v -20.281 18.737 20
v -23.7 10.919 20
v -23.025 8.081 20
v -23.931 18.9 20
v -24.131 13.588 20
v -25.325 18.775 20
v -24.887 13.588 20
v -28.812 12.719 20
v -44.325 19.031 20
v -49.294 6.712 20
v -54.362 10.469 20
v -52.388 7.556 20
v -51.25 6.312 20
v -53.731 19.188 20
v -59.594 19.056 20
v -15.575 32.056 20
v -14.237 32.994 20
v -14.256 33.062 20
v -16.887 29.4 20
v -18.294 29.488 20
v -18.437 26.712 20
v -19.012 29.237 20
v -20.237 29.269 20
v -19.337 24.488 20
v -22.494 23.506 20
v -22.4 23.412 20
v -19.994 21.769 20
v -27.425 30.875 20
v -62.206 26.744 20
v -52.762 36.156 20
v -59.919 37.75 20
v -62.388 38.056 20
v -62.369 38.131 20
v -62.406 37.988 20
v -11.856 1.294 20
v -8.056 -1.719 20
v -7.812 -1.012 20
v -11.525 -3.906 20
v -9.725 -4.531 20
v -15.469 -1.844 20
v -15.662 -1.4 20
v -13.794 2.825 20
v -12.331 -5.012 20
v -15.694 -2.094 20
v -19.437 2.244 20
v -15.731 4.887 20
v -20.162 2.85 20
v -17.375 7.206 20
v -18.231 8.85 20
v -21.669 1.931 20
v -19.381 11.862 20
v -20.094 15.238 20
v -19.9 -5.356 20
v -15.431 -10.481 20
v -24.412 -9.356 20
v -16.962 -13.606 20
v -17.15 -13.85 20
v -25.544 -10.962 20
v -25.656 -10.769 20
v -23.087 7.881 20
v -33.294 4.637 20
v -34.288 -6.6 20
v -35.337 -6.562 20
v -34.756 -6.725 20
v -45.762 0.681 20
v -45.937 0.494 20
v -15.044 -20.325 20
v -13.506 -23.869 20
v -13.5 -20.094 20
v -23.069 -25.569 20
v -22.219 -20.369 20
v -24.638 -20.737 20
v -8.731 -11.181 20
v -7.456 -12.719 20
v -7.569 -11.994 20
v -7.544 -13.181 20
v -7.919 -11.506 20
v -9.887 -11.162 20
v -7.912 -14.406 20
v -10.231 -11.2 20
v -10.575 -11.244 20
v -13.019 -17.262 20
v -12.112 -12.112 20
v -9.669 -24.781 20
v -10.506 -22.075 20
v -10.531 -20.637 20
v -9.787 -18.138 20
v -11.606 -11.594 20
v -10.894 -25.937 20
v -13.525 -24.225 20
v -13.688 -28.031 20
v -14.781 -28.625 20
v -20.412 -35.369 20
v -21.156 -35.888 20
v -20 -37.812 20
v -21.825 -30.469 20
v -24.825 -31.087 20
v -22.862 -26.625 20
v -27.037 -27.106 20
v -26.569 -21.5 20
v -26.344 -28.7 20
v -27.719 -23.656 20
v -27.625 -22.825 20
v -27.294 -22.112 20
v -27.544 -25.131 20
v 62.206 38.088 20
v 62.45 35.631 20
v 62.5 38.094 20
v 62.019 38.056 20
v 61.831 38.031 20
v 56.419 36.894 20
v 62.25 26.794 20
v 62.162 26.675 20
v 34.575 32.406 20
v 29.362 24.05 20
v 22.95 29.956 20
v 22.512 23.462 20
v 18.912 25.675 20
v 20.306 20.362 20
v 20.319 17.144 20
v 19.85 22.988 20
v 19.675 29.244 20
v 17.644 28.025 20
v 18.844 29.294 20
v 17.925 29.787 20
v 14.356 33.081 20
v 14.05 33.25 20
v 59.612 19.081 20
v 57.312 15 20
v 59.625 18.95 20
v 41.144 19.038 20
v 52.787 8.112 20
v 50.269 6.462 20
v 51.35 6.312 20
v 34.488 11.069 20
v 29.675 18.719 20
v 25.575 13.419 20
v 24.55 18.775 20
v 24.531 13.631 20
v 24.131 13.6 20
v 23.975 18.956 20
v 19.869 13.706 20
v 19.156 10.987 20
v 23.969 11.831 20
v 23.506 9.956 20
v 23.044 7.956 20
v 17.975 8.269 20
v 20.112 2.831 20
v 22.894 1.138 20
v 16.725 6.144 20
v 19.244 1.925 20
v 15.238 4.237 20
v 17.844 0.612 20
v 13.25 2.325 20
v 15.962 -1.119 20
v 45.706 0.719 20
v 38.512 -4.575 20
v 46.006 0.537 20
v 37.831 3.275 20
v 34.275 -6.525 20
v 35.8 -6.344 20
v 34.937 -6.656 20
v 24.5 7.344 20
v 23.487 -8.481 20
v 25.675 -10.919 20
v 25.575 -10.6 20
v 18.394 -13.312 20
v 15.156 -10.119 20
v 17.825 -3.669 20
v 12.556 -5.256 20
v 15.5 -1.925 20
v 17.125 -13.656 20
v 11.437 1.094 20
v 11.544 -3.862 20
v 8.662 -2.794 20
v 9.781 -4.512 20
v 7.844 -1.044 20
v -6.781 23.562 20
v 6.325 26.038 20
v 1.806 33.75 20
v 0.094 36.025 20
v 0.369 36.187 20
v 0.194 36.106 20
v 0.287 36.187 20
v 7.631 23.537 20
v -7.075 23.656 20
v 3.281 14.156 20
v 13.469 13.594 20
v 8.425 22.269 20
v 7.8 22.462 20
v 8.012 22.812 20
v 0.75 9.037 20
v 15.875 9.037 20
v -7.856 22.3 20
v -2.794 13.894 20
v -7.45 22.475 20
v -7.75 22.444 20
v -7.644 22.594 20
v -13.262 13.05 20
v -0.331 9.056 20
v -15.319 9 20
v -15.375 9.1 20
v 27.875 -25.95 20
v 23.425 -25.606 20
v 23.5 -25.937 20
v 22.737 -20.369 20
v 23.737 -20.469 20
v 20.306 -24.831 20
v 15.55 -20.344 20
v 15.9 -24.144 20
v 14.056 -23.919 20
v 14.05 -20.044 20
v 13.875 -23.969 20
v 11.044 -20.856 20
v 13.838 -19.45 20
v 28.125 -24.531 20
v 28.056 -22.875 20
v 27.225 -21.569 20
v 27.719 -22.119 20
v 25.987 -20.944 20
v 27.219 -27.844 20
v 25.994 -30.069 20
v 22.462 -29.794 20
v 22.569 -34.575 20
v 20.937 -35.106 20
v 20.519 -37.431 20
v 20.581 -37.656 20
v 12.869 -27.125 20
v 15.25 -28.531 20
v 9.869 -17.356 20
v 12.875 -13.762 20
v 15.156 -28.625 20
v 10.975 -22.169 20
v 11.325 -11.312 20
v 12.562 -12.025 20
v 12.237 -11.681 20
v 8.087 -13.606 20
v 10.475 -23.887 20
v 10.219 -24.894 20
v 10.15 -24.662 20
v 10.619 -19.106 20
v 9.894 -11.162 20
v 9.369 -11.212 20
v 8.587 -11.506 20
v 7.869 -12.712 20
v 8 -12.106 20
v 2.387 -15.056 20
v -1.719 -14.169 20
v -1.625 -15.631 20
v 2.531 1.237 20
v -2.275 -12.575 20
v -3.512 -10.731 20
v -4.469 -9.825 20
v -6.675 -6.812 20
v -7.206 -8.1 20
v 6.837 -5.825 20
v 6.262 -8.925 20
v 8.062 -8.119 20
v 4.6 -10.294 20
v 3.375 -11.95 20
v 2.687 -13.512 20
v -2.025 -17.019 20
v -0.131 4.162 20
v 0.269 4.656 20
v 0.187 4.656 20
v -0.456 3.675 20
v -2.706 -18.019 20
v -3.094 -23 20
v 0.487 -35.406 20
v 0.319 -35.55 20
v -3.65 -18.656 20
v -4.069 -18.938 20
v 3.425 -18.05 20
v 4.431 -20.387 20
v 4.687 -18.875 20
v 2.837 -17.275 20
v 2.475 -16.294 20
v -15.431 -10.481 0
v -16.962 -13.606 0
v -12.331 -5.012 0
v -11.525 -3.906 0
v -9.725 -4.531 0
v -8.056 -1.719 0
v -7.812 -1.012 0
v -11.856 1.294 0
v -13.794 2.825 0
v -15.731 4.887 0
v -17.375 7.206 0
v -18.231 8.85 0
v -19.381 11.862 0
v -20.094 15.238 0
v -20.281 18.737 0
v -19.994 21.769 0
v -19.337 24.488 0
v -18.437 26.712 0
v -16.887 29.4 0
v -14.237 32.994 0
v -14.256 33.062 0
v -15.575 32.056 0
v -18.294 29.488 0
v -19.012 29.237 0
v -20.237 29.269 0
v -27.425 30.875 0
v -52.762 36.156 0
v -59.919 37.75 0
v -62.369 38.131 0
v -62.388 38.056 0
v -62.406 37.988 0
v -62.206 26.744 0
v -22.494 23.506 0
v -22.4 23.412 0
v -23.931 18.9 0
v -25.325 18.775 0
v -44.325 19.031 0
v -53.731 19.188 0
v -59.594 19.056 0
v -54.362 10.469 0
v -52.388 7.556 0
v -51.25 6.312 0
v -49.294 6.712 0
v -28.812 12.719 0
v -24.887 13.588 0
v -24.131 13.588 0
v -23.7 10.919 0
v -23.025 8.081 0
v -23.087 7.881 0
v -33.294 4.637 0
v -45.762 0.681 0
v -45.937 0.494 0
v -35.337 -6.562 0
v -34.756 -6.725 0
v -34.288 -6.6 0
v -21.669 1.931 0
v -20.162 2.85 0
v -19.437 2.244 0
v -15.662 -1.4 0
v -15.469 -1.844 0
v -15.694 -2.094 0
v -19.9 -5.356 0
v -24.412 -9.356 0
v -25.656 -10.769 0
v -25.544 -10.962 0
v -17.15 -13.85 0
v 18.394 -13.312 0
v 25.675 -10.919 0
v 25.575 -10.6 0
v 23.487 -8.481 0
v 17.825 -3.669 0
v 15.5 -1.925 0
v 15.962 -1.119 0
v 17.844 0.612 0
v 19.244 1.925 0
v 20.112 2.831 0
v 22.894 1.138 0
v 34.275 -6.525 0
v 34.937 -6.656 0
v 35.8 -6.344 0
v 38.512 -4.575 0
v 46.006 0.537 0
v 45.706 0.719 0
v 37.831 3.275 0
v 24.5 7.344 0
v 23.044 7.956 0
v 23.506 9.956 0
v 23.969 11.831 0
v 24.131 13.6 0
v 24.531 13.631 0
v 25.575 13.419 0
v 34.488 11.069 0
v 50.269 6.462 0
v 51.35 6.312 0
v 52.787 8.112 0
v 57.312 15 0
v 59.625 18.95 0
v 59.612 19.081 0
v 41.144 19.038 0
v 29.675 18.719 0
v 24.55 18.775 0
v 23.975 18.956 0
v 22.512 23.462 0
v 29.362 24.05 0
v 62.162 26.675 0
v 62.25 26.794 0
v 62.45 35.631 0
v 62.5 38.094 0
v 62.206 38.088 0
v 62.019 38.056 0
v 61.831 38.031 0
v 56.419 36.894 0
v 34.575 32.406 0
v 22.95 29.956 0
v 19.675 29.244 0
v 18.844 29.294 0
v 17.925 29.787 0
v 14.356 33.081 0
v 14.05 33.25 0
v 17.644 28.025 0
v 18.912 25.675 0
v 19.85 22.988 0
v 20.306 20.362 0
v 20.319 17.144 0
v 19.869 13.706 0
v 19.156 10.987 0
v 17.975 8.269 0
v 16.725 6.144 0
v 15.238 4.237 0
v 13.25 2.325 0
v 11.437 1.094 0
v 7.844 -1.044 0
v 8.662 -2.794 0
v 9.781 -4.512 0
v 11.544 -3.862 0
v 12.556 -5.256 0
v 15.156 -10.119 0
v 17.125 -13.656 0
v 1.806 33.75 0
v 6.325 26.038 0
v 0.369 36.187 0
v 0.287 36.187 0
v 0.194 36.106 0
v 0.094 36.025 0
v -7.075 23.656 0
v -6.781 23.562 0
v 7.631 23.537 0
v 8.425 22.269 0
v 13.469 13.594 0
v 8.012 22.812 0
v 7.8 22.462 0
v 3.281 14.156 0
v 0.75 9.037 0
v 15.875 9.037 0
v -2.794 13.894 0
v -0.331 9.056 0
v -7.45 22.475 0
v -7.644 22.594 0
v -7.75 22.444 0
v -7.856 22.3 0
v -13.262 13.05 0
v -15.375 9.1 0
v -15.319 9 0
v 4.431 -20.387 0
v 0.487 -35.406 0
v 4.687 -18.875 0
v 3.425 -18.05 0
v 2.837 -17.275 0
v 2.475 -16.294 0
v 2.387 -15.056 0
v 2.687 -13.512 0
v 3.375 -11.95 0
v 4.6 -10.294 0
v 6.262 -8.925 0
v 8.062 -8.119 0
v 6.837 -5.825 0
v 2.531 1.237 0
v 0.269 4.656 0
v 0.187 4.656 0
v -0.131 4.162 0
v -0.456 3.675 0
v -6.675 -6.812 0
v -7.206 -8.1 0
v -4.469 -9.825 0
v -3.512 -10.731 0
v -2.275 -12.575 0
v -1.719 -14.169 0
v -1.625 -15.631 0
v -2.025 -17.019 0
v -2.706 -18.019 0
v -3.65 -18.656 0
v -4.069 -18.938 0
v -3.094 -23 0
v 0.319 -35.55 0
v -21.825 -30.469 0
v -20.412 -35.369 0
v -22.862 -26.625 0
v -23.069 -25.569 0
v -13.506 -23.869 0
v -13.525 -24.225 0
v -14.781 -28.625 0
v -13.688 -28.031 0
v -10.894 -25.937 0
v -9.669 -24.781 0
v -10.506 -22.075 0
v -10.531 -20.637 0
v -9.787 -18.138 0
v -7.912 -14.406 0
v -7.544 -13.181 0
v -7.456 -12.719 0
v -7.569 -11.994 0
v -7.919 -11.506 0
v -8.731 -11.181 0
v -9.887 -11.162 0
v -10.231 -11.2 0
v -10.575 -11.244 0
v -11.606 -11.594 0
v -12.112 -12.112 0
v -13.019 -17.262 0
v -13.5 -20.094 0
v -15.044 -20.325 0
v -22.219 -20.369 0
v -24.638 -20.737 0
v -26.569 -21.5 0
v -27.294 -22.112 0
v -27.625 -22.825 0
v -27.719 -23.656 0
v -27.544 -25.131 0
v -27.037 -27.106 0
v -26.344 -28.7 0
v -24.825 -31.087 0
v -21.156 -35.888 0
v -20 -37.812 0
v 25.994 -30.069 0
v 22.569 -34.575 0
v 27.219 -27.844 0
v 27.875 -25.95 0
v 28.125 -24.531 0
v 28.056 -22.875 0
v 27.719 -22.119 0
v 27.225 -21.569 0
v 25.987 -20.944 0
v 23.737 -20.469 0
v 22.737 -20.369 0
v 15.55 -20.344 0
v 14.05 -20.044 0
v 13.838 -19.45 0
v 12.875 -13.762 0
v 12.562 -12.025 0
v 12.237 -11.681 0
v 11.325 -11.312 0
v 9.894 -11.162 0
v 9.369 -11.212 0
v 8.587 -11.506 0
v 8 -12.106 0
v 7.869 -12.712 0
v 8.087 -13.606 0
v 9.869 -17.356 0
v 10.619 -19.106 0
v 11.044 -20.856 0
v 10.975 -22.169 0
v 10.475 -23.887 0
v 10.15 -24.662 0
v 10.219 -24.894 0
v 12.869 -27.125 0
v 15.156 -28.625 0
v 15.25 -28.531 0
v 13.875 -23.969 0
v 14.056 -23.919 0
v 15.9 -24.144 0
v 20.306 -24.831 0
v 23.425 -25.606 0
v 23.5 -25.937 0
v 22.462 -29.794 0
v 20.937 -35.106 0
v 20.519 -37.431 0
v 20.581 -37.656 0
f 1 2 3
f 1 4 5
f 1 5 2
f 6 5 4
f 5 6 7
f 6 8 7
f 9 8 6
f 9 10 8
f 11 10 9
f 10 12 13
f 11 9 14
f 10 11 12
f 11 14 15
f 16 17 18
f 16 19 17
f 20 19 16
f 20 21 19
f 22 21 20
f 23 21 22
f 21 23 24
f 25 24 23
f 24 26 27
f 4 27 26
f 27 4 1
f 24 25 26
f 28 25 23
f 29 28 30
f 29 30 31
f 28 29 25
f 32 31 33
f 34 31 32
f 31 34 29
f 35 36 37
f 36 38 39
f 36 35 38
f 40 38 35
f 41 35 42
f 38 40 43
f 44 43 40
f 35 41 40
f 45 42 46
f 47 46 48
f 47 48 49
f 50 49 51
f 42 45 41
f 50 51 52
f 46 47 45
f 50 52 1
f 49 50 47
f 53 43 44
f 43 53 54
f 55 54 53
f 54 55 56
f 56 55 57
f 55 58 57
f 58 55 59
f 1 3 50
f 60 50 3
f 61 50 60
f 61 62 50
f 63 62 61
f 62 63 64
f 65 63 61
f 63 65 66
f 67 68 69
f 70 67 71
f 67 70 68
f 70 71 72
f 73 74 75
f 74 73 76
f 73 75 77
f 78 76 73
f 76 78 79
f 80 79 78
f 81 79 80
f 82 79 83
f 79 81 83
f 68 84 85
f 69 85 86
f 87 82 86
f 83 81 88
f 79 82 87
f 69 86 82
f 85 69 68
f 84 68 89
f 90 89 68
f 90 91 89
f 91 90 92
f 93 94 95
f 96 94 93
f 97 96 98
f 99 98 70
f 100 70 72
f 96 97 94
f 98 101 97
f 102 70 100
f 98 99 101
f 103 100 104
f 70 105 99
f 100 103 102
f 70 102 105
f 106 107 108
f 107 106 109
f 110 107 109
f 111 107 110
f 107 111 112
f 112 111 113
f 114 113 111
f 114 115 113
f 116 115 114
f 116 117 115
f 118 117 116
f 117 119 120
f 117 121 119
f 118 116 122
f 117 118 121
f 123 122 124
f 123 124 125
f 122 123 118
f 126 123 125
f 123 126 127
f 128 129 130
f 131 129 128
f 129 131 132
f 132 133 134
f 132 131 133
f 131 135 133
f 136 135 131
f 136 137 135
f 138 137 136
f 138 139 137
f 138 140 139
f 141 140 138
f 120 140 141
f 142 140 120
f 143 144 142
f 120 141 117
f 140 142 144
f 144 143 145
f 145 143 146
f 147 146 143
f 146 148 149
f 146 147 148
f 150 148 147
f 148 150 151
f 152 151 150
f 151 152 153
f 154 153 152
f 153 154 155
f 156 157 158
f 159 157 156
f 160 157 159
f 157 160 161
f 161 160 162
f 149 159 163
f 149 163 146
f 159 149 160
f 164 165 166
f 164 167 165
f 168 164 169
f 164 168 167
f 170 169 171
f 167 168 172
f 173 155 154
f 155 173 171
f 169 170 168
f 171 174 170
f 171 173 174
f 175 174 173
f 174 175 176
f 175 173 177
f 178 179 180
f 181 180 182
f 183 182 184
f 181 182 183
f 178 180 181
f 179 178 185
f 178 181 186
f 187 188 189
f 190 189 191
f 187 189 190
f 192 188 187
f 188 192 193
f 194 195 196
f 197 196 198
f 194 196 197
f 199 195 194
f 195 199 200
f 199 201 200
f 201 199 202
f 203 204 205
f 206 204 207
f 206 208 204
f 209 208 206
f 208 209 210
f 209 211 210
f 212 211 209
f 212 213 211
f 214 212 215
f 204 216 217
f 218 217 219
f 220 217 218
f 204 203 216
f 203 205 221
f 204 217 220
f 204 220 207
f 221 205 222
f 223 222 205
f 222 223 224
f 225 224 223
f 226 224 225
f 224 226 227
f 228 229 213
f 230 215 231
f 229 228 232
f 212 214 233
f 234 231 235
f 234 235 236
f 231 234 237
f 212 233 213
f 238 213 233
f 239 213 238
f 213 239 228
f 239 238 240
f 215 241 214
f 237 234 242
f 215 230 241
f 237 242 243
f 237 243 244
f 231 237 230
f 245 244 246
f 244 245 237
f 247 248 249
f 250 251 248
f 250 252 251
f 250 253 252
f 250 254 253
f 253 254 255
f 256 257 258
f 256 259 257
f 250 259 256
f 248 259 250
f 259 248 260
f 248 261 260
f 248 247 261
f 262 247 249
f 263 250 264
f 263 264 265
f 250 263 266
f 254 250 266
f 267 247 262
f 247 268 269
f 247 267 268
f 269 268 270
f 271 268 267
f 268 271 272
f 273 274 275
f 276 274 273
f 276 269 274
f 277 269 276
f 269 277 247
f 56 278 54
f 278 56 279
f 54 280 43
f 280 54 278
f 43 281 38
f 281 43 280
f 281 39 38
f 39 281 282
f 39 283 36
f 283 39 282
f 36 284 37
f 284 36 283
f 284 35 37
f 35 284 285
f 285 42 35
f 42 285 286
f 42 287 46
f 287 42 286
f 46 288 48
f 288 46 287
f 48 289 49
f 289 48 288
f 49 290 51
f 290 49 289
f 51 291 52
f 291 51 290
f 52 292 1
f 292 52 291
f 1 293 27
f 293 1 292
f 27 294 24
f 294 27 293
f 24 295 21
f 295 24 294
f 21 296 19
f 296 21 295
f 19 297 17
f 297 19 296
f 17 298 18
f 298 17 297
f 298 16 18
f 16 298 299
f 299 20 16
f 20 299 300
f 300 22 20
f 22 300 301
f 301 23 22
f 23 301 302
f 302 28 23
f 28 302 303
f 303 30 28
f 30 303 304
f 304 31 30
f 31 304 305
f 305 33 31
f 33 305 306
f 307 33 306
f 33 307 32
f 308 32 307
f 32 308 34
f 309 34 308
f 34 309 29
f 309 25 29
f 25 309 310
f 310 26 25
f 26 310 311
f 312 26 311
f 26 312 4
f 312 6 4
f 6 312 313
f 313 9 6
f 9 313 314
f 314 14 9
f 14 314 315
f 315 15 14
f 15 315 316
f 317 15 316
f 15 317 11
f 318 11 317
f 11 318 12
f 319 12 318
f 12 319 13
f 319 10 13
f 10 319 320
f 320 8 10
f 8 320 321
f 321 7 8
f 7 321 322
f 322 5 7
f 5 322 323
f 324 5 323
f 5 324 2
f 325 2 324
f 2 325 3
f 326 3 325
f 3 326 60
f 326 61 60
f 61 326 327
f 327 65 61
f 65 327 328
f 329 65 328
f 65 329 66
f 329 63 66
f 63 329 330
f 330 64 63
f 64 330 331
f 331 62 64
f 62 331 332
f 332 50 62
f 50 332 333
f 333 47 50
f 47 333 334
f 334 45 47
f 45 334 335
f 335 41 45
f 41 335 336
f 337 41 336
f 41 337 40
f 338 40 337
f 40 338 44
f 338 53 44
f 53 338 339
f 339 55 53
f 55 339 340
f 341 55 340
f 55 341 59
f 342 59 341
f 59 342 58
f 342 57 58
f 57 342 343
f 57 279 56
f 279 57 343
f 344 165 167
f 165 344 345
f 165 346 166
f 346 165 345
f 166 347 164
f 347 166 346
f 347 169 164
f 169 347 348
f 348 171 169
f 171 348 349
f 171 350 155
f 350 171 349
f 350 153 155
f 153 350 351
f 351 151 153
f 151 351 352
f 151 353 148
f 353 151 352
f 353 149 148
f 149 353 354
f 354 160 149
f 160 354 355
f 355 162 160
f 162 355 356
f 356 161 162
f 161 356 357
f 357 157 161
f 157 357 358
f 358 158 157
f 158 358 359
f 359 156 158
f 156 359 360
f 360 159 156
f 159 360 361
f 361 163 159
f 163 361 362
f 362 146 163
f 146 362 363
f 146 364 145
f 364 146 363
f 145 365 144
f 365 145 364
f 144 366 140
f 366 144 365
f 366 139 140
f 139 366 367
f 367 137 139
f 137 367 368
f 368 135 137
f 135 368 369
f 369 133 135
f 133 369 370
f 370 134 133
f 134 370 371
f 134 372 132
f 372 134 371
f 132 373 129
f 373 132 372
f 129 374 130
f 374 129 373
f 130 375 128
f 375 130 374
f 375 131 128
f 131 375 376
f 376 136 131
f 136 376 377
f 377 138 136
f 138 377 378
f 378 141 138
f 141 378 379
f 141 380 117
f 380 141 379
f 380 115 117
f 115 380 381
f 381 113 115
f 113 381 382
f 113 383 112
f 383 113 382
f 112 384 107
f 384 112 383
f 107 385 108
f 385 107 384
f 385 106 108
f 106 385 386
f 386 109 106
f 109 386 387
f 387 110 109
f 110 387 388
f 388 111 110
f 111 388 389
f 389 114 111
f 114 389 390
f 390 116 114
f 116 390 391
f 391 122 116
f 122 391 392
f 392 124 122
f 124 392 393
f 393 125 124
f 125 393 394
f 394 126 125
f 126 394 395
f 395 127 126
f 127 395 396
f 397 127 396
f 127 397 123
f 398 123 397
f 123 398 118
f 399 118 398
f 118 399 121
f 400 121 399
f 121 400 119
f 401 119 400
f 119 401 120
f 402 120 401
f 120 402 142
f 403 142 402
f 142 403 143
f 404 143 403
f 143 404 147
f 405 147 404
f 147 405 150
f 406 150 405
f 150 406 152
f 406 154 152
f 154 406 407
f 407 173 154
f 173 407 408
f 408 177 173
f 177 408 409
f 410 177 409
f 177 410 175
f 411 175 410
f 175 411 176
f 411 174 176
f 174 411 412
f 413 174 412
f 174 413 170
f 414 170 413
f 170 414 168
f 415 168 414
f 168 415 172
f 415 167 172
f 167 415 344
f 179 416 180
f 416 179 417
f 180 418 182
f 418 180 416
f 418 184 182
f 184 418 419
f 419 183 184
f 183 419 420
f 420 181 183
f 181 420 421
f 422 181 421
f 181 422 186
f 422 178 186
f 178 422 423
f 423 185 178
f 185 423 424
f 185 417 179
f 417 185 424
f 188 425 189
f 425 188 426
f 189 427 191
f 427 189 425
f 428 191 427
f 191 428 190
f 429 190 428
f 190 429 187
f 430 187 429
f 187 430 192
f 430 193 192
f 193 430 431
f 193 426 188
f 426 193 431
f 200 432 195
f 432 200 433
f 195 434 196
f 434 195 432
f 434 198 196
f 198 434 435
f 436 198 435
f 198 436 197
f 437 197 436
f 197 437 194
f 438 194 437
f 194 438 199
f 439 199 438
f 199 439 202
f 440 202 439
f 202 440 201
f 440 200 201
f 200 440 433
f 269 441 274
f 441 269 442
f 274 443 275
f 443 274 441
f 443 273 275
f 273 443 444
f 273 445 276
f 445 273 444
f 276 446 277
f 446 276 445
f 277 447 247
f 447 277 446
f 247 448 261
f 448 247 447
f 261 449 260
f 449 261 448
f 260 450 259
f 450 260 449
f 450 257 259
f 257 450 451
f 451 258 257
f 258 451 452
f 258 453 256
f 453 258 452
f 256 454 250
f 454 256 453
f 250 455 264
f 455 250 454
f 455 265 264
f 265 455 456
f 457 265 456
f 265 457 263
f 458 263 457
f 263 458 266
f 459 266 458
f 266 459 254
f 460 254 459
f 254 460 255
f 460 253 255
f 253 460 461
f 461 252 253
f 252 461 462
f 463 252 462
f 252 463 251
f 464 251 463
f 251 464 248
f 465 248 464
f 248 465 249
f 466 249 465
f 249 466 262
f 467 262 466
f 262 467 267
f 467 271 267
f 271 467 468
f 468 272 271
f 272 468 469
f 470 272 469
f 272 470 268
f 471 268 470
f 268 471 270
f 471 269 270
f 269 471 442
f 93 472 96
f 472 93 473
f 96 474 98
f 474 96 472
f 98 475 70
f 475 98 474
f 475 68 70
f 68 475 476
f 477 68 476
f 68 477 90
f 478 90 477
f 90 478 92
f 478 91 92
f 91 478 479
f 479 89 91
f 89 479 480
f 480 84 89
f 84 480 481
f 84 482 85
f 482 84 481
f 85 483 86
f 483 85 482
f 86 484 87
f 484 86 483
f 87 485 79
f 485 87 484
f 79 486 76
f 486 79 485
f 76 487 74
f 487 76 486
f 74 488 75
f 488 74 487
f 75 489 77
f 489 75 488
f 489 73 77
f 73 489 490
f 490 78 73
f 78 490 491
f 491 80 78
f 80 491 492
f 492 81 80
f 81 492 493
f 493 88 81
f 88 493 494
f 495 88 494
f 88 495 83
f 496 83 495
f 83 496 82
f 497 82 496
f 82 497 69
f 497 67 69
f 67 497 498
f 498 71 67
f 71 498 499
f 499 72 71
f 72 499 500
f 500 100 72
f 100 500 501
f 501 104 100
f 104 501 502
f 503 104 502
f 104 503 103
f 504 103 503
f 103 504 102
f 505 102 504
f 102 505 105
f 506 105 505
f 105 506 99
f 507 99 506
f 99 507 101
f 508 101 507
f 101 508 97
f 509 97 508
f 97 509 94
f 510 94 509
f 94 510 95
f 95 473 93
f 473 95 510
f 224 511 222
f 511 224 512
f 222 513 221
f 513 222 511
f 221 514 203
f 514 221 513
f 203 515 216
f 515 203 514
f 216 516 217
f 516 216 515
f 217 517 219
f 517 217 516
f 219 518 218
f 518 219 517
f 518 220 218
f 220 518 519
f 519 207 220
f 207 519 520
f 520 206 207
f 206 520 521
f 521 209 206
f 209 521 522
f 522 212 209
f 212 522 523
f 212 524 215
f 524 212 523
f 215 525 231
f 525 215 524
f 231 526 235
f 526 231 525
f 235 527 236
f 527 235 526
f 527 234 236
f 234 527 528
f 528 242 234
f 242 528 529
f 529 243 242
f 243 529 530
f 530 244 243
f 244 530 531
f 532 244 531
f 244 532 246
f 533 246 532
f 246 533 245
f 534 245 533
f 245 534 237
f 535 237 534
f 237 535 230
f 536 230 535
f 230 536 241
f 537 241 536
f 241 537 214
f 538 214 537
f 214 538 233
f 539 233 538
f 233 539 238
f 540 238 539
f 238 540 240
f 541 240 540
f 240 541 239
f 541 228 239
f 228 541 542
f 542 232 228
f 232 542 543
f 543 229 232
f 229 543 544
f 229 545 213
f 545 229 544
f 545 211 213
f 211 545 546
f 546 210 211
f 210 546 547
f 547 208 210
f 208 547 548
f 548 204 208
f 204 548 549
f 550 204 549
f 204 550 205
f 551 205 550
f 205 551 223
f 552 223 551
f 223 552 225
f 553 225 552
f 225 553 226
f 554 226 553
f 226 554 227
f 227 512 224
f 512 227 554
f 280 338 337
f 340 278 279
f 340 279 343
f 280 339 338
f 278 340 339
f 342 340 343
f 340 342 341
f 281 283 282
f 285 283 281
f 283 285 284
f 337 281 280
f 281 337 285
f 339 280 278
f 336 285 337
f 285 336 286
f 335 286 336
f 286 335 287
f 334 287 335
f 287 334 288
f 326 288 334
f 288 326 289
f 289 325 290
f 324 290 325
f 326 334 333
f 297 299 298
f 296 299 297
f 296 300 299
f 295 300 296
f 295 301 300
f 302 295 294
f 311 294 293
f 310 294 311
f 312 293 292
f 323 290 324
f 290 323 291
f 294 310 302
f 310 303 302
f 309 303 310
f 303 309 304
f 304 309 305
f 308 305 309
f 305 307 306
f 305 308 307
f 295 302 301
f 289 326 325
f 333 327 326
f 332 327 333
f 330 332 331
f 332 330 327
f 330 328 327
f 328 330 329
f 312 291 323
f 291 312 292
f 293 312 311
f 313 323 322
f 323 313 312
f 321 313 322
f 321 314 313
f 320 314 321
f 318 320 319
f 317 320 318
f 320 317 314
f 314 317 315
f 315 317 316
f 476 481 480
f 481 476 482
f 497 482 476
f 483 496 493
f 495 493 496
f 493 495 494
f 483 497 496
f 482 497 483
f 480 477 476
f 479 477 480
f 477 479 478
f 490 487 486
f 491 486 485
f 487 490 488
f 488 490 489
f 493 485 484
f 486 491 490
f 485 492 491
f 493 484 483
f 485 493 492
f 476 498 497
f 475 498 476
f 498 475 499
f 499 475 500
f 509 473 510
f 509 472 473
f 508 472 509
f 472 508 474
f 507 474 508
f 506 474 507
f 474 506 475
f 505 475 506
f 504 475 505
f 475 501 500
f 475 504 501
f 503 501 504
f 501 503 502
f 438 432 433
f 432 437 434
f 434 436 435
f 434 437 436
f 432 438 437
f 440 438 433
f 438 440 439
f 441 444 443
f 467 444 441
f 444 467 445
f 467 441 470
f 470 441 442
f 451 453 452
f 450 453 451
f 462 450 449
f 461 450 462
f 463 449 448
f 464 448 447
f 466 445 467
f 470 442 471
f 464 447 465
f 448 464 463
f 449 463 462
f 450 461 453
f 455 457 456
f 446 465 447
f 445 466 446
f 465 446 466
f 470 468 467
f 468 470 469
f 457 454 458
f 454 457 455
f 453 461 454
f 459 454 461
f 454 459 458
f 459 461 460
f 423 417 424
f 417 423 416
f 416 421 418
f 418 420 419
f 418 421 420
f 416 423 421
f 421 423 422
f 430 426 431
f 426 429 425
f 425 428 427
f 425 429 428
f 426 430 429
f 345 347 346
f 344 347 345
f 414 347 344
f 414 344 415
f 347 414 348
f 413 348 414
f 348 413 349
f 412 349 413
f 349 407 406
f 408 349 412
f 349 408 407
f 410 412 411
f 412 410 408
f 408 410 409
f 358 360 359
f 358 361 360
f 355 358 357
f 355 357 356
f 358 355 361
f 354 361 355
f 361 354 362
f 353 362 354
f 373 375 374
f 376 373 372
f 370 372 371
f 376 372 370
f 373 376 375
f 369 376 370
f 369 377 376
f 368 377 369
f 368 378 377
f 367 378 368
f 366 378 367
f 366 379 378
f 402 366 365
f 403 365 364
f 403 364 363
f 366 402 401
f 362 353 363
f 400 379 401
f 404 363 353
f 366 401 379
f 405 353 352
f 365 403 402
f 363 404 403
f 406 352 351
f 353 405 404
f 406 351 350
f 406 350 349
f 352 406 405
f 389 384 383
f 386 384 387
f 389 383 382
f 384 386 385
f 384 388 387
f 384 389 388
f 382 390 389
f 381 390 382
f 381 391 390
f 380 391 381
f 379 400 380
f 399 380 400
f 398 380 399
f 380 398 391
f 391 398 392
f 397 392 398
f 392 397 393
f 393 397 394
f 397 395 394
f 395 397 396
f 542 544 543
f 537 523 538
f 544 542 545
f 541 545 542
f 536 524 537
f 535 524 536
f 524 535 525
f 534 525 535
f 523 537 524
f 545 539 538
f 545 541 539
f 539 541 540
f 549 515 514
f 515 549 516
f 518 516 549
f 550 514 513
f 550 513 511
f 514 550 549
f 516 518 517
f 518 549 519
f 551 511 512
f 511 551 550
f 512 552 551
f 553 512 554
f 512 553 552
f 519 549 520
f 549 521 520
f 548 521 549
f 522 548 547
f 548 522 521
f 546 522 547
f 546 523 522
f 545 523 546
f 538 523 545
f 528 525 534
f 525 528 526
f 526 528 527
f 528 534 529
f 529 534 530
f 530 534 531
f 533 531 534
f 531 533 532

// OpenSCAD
module 90cd2d3fccbd112c779d59049372b4ca_1()
{
 /* Generated by trace2scad version 20150415
    http://aggregate.org/MAKE/TRACE2SCAD/
    Optimized model has 279/3844 original points
 */
 color([0.48, 0.48, 0.48])
 assign(minx=0) /* polygon minx=15 */
 assign(miny=0) /* polygon miny=75 */
 assign(maxx=20000) /* polygon maxx=20000 */
 assign(maxy=12250) /* polygon maxy=12226 */
 assign(dx=maxx-minx)
 assign(dy=maxy-miny)
 assign(maxd=((dx>dy)?dx:dy))
 scale([1/maxd, 1/maxd, 1])
 translate([-minx-dx/2, -miny-dy/2, 0])
 linear_extrude(height=1, convexity=279)
 union() {
  union() {
   polygon([[18,12214],[15,12203],[47,10404],[6401,9886],[6416,9871],[6171,9149],[5948,9129],[2908,9170],[1403,9195],[465,9174],[1302,7800],[1618,7334],[1800,7135],[2113,7199],[5390,8160],[6018,8299],[6139,8299],[6208,7872],[6316,7418],[6306,7386],[4673,6867],[2678,6234],[2650,6204],[4346,5075],[4439,5049],[4514,5069],[6533,6434],[6774,6581],[6890,6484],[7494,5901],[7525,5830],[7489,5790],[6816,5268],[6094,4628],[5895,4402],[5913,4371],[7256,3909],[7286,3948],[7531,4448],[8027,5323],[8156,5500],[8444,5400],[8711,5850],[8750,5963],[8103,6332],[7793,6577],[7483,6907],[7220,7278],[7083,7541],[6899,8023],[6785,8563],[6755,9123],[6801,9608],[6906,10043],[7050,10399],[7298,10829],[7722,11404],[7719,11415],[7508,11254],[7073,10843],[6958,10803],[6762,10808],[5612,11065],[1558,11910],[413,12165],[21,12226]], convexity=24);
   polygon([[19923,12214],[19893,12210],[19027,12028],[15532,11310],[13672,10918],[13148,10804],[13015,10812],[12868,10891],[12297,11418],[12248,11445],[12823,10609],[13026,10233],[13176,9803],[13249,9383],[13251,8868],[13179,8318],[13065,7883],[12876,7448],[12676,7108],[12438,6803],[12120,6497],[11830,6300],[11255,5958],[11386,5678],[11565,5403],[11847,5507],[12009,5284],[12425,4506],[12740,3940],[12943,3995],[14108,4378],[14092,4429],[13758,4768],[12852,5538],[12480,5817],[12554,5946],[12855,6223],[13079,6433],[13218,6578],[13663,6307],[15484,5081],[15590,5060],[15728,5110],[16162,5393],[17361,6211],[17313,6240],[16053,6649],[13920,7300],[13687,7398],[13761,7718],[13835,8018],[13861,8301],[13925,8306],[14092,8272],[15518,7896],[18043,7159],[18216,7135],[18446,7423],[19170,8525],[19540,9157],[19538,9178],[16583,9171],[14748,9120],[13928,9129],[13836,9158],[13602,9879],[14698,9973],[19946,10393],[19960,10412],[19992,11826],[20000,12220],[19953,12219]], convexity=23);
   polygon([[10031,11902],[10015,11889],[8868,9910],[8915,9895],[11221,9891],[11012,10291],[10289,11525],[10059,11915],[10046,11915]], convexity=5);
   polygon([[11265,9747],[11248,9719],[10525,8390],[10120,7571],[12540,7571],[12155,8300],[11348,9688],[11282,9775]], convexity=5);
   polygon([[8760,9716],[8743,9693],[7878,8213],[7540,7581],[7549,7565],[9947,7574],[9553,8348],[8808,9721],[8777,9740]], convexity=6);
   polygon([[9979,6791],[9927,6713],[8932,5035],[8847,4829],[9285,4553],[9438,4408],[9636,4113],[9725,3858],[9740,3624],[9676,3402],[9567,3242],[9416,3140],[9349,3095],[9505,2445],[10051,437],[10078,460],[10709,2863],[10750,3105],[10548,3237],[10454,3361],[10396,3518],[10382,3716],[10430,3963],[10540,4213],[10736,4478],[11002,4697],[11290,4826],[11094,5193],[10405,6323],[10043,6870],[10030,6870]], convexity=10);
   polygon([[8363,4333],[8308,4326],[8143,4270],[8062,4187],[7917,3363],[7840,2910],[7593,2873],[6445,2866],[6058,2807],[5749,2685],[5633,2587],[5580,2473],[5565,2340],[5593,2104],[5674,1788],[5785,1533],[6028,1151],[6615,383],[6800,75],[6734,466],[6508,1250],[6342,1865],[6309,2034],[7839,2306],[7836,2249],[7635,1545],[7810,1640],[8257,1975],[8453,2160],[8319,2593],[8315,2823],[8434,3223],[8734,3820],[8793,4016],[8807,4090],[8789,4206],[8733,4284],[8603,4336],[8418,4339]], convexity=11);
   polygon([[11541,4335],[11499,4331],[11374,4284],[11280,4188],[11259,4091],[11294,3948],[11579,3348],[11699,3068],[11767,2788],[11756,2578],[11676,2303],[11624,2179],[11635,2142],[12059,1785],[12425,1545],[12440,1560],[12220,2290],[12249,2298],[12544,2262],[13249,2152],[13748,2028],[13760,1975],[13594,1358],[13350,508],[13283,136],[13293,100],[13611,593],[14159,1314],[14355,1670],[14460,1973],[14500,2200],[14489,2465],[14435,2586],[14356,2674],[14158,2774],[13798,2850],[13638,2866],[12488,2870],[12248,2918],[12214,3013],[12060,3923],[12010,4201],[11958,4256],[11812,4315],[11583,4339]], convexity=14);
  }
 }
}

module 90cd2d3fccbd112c779d59049372b4ca()
{
 /* all layers combined, scaled to within a 1mm cube */
 scale([1, 1, 1/1])
 difference() {
  union() {
   scale([1,1,2]) translate([0,0,-0.5]) 90cd2d3fccbd112c779d59049372b4ca_1();
  }
  translate([0,0,-2]) cube([2,2,4],center=true);
 }
}

scale([125, 125, 20]) {
	90cd2d3fccbd112c779d59049372b4ca();
}
